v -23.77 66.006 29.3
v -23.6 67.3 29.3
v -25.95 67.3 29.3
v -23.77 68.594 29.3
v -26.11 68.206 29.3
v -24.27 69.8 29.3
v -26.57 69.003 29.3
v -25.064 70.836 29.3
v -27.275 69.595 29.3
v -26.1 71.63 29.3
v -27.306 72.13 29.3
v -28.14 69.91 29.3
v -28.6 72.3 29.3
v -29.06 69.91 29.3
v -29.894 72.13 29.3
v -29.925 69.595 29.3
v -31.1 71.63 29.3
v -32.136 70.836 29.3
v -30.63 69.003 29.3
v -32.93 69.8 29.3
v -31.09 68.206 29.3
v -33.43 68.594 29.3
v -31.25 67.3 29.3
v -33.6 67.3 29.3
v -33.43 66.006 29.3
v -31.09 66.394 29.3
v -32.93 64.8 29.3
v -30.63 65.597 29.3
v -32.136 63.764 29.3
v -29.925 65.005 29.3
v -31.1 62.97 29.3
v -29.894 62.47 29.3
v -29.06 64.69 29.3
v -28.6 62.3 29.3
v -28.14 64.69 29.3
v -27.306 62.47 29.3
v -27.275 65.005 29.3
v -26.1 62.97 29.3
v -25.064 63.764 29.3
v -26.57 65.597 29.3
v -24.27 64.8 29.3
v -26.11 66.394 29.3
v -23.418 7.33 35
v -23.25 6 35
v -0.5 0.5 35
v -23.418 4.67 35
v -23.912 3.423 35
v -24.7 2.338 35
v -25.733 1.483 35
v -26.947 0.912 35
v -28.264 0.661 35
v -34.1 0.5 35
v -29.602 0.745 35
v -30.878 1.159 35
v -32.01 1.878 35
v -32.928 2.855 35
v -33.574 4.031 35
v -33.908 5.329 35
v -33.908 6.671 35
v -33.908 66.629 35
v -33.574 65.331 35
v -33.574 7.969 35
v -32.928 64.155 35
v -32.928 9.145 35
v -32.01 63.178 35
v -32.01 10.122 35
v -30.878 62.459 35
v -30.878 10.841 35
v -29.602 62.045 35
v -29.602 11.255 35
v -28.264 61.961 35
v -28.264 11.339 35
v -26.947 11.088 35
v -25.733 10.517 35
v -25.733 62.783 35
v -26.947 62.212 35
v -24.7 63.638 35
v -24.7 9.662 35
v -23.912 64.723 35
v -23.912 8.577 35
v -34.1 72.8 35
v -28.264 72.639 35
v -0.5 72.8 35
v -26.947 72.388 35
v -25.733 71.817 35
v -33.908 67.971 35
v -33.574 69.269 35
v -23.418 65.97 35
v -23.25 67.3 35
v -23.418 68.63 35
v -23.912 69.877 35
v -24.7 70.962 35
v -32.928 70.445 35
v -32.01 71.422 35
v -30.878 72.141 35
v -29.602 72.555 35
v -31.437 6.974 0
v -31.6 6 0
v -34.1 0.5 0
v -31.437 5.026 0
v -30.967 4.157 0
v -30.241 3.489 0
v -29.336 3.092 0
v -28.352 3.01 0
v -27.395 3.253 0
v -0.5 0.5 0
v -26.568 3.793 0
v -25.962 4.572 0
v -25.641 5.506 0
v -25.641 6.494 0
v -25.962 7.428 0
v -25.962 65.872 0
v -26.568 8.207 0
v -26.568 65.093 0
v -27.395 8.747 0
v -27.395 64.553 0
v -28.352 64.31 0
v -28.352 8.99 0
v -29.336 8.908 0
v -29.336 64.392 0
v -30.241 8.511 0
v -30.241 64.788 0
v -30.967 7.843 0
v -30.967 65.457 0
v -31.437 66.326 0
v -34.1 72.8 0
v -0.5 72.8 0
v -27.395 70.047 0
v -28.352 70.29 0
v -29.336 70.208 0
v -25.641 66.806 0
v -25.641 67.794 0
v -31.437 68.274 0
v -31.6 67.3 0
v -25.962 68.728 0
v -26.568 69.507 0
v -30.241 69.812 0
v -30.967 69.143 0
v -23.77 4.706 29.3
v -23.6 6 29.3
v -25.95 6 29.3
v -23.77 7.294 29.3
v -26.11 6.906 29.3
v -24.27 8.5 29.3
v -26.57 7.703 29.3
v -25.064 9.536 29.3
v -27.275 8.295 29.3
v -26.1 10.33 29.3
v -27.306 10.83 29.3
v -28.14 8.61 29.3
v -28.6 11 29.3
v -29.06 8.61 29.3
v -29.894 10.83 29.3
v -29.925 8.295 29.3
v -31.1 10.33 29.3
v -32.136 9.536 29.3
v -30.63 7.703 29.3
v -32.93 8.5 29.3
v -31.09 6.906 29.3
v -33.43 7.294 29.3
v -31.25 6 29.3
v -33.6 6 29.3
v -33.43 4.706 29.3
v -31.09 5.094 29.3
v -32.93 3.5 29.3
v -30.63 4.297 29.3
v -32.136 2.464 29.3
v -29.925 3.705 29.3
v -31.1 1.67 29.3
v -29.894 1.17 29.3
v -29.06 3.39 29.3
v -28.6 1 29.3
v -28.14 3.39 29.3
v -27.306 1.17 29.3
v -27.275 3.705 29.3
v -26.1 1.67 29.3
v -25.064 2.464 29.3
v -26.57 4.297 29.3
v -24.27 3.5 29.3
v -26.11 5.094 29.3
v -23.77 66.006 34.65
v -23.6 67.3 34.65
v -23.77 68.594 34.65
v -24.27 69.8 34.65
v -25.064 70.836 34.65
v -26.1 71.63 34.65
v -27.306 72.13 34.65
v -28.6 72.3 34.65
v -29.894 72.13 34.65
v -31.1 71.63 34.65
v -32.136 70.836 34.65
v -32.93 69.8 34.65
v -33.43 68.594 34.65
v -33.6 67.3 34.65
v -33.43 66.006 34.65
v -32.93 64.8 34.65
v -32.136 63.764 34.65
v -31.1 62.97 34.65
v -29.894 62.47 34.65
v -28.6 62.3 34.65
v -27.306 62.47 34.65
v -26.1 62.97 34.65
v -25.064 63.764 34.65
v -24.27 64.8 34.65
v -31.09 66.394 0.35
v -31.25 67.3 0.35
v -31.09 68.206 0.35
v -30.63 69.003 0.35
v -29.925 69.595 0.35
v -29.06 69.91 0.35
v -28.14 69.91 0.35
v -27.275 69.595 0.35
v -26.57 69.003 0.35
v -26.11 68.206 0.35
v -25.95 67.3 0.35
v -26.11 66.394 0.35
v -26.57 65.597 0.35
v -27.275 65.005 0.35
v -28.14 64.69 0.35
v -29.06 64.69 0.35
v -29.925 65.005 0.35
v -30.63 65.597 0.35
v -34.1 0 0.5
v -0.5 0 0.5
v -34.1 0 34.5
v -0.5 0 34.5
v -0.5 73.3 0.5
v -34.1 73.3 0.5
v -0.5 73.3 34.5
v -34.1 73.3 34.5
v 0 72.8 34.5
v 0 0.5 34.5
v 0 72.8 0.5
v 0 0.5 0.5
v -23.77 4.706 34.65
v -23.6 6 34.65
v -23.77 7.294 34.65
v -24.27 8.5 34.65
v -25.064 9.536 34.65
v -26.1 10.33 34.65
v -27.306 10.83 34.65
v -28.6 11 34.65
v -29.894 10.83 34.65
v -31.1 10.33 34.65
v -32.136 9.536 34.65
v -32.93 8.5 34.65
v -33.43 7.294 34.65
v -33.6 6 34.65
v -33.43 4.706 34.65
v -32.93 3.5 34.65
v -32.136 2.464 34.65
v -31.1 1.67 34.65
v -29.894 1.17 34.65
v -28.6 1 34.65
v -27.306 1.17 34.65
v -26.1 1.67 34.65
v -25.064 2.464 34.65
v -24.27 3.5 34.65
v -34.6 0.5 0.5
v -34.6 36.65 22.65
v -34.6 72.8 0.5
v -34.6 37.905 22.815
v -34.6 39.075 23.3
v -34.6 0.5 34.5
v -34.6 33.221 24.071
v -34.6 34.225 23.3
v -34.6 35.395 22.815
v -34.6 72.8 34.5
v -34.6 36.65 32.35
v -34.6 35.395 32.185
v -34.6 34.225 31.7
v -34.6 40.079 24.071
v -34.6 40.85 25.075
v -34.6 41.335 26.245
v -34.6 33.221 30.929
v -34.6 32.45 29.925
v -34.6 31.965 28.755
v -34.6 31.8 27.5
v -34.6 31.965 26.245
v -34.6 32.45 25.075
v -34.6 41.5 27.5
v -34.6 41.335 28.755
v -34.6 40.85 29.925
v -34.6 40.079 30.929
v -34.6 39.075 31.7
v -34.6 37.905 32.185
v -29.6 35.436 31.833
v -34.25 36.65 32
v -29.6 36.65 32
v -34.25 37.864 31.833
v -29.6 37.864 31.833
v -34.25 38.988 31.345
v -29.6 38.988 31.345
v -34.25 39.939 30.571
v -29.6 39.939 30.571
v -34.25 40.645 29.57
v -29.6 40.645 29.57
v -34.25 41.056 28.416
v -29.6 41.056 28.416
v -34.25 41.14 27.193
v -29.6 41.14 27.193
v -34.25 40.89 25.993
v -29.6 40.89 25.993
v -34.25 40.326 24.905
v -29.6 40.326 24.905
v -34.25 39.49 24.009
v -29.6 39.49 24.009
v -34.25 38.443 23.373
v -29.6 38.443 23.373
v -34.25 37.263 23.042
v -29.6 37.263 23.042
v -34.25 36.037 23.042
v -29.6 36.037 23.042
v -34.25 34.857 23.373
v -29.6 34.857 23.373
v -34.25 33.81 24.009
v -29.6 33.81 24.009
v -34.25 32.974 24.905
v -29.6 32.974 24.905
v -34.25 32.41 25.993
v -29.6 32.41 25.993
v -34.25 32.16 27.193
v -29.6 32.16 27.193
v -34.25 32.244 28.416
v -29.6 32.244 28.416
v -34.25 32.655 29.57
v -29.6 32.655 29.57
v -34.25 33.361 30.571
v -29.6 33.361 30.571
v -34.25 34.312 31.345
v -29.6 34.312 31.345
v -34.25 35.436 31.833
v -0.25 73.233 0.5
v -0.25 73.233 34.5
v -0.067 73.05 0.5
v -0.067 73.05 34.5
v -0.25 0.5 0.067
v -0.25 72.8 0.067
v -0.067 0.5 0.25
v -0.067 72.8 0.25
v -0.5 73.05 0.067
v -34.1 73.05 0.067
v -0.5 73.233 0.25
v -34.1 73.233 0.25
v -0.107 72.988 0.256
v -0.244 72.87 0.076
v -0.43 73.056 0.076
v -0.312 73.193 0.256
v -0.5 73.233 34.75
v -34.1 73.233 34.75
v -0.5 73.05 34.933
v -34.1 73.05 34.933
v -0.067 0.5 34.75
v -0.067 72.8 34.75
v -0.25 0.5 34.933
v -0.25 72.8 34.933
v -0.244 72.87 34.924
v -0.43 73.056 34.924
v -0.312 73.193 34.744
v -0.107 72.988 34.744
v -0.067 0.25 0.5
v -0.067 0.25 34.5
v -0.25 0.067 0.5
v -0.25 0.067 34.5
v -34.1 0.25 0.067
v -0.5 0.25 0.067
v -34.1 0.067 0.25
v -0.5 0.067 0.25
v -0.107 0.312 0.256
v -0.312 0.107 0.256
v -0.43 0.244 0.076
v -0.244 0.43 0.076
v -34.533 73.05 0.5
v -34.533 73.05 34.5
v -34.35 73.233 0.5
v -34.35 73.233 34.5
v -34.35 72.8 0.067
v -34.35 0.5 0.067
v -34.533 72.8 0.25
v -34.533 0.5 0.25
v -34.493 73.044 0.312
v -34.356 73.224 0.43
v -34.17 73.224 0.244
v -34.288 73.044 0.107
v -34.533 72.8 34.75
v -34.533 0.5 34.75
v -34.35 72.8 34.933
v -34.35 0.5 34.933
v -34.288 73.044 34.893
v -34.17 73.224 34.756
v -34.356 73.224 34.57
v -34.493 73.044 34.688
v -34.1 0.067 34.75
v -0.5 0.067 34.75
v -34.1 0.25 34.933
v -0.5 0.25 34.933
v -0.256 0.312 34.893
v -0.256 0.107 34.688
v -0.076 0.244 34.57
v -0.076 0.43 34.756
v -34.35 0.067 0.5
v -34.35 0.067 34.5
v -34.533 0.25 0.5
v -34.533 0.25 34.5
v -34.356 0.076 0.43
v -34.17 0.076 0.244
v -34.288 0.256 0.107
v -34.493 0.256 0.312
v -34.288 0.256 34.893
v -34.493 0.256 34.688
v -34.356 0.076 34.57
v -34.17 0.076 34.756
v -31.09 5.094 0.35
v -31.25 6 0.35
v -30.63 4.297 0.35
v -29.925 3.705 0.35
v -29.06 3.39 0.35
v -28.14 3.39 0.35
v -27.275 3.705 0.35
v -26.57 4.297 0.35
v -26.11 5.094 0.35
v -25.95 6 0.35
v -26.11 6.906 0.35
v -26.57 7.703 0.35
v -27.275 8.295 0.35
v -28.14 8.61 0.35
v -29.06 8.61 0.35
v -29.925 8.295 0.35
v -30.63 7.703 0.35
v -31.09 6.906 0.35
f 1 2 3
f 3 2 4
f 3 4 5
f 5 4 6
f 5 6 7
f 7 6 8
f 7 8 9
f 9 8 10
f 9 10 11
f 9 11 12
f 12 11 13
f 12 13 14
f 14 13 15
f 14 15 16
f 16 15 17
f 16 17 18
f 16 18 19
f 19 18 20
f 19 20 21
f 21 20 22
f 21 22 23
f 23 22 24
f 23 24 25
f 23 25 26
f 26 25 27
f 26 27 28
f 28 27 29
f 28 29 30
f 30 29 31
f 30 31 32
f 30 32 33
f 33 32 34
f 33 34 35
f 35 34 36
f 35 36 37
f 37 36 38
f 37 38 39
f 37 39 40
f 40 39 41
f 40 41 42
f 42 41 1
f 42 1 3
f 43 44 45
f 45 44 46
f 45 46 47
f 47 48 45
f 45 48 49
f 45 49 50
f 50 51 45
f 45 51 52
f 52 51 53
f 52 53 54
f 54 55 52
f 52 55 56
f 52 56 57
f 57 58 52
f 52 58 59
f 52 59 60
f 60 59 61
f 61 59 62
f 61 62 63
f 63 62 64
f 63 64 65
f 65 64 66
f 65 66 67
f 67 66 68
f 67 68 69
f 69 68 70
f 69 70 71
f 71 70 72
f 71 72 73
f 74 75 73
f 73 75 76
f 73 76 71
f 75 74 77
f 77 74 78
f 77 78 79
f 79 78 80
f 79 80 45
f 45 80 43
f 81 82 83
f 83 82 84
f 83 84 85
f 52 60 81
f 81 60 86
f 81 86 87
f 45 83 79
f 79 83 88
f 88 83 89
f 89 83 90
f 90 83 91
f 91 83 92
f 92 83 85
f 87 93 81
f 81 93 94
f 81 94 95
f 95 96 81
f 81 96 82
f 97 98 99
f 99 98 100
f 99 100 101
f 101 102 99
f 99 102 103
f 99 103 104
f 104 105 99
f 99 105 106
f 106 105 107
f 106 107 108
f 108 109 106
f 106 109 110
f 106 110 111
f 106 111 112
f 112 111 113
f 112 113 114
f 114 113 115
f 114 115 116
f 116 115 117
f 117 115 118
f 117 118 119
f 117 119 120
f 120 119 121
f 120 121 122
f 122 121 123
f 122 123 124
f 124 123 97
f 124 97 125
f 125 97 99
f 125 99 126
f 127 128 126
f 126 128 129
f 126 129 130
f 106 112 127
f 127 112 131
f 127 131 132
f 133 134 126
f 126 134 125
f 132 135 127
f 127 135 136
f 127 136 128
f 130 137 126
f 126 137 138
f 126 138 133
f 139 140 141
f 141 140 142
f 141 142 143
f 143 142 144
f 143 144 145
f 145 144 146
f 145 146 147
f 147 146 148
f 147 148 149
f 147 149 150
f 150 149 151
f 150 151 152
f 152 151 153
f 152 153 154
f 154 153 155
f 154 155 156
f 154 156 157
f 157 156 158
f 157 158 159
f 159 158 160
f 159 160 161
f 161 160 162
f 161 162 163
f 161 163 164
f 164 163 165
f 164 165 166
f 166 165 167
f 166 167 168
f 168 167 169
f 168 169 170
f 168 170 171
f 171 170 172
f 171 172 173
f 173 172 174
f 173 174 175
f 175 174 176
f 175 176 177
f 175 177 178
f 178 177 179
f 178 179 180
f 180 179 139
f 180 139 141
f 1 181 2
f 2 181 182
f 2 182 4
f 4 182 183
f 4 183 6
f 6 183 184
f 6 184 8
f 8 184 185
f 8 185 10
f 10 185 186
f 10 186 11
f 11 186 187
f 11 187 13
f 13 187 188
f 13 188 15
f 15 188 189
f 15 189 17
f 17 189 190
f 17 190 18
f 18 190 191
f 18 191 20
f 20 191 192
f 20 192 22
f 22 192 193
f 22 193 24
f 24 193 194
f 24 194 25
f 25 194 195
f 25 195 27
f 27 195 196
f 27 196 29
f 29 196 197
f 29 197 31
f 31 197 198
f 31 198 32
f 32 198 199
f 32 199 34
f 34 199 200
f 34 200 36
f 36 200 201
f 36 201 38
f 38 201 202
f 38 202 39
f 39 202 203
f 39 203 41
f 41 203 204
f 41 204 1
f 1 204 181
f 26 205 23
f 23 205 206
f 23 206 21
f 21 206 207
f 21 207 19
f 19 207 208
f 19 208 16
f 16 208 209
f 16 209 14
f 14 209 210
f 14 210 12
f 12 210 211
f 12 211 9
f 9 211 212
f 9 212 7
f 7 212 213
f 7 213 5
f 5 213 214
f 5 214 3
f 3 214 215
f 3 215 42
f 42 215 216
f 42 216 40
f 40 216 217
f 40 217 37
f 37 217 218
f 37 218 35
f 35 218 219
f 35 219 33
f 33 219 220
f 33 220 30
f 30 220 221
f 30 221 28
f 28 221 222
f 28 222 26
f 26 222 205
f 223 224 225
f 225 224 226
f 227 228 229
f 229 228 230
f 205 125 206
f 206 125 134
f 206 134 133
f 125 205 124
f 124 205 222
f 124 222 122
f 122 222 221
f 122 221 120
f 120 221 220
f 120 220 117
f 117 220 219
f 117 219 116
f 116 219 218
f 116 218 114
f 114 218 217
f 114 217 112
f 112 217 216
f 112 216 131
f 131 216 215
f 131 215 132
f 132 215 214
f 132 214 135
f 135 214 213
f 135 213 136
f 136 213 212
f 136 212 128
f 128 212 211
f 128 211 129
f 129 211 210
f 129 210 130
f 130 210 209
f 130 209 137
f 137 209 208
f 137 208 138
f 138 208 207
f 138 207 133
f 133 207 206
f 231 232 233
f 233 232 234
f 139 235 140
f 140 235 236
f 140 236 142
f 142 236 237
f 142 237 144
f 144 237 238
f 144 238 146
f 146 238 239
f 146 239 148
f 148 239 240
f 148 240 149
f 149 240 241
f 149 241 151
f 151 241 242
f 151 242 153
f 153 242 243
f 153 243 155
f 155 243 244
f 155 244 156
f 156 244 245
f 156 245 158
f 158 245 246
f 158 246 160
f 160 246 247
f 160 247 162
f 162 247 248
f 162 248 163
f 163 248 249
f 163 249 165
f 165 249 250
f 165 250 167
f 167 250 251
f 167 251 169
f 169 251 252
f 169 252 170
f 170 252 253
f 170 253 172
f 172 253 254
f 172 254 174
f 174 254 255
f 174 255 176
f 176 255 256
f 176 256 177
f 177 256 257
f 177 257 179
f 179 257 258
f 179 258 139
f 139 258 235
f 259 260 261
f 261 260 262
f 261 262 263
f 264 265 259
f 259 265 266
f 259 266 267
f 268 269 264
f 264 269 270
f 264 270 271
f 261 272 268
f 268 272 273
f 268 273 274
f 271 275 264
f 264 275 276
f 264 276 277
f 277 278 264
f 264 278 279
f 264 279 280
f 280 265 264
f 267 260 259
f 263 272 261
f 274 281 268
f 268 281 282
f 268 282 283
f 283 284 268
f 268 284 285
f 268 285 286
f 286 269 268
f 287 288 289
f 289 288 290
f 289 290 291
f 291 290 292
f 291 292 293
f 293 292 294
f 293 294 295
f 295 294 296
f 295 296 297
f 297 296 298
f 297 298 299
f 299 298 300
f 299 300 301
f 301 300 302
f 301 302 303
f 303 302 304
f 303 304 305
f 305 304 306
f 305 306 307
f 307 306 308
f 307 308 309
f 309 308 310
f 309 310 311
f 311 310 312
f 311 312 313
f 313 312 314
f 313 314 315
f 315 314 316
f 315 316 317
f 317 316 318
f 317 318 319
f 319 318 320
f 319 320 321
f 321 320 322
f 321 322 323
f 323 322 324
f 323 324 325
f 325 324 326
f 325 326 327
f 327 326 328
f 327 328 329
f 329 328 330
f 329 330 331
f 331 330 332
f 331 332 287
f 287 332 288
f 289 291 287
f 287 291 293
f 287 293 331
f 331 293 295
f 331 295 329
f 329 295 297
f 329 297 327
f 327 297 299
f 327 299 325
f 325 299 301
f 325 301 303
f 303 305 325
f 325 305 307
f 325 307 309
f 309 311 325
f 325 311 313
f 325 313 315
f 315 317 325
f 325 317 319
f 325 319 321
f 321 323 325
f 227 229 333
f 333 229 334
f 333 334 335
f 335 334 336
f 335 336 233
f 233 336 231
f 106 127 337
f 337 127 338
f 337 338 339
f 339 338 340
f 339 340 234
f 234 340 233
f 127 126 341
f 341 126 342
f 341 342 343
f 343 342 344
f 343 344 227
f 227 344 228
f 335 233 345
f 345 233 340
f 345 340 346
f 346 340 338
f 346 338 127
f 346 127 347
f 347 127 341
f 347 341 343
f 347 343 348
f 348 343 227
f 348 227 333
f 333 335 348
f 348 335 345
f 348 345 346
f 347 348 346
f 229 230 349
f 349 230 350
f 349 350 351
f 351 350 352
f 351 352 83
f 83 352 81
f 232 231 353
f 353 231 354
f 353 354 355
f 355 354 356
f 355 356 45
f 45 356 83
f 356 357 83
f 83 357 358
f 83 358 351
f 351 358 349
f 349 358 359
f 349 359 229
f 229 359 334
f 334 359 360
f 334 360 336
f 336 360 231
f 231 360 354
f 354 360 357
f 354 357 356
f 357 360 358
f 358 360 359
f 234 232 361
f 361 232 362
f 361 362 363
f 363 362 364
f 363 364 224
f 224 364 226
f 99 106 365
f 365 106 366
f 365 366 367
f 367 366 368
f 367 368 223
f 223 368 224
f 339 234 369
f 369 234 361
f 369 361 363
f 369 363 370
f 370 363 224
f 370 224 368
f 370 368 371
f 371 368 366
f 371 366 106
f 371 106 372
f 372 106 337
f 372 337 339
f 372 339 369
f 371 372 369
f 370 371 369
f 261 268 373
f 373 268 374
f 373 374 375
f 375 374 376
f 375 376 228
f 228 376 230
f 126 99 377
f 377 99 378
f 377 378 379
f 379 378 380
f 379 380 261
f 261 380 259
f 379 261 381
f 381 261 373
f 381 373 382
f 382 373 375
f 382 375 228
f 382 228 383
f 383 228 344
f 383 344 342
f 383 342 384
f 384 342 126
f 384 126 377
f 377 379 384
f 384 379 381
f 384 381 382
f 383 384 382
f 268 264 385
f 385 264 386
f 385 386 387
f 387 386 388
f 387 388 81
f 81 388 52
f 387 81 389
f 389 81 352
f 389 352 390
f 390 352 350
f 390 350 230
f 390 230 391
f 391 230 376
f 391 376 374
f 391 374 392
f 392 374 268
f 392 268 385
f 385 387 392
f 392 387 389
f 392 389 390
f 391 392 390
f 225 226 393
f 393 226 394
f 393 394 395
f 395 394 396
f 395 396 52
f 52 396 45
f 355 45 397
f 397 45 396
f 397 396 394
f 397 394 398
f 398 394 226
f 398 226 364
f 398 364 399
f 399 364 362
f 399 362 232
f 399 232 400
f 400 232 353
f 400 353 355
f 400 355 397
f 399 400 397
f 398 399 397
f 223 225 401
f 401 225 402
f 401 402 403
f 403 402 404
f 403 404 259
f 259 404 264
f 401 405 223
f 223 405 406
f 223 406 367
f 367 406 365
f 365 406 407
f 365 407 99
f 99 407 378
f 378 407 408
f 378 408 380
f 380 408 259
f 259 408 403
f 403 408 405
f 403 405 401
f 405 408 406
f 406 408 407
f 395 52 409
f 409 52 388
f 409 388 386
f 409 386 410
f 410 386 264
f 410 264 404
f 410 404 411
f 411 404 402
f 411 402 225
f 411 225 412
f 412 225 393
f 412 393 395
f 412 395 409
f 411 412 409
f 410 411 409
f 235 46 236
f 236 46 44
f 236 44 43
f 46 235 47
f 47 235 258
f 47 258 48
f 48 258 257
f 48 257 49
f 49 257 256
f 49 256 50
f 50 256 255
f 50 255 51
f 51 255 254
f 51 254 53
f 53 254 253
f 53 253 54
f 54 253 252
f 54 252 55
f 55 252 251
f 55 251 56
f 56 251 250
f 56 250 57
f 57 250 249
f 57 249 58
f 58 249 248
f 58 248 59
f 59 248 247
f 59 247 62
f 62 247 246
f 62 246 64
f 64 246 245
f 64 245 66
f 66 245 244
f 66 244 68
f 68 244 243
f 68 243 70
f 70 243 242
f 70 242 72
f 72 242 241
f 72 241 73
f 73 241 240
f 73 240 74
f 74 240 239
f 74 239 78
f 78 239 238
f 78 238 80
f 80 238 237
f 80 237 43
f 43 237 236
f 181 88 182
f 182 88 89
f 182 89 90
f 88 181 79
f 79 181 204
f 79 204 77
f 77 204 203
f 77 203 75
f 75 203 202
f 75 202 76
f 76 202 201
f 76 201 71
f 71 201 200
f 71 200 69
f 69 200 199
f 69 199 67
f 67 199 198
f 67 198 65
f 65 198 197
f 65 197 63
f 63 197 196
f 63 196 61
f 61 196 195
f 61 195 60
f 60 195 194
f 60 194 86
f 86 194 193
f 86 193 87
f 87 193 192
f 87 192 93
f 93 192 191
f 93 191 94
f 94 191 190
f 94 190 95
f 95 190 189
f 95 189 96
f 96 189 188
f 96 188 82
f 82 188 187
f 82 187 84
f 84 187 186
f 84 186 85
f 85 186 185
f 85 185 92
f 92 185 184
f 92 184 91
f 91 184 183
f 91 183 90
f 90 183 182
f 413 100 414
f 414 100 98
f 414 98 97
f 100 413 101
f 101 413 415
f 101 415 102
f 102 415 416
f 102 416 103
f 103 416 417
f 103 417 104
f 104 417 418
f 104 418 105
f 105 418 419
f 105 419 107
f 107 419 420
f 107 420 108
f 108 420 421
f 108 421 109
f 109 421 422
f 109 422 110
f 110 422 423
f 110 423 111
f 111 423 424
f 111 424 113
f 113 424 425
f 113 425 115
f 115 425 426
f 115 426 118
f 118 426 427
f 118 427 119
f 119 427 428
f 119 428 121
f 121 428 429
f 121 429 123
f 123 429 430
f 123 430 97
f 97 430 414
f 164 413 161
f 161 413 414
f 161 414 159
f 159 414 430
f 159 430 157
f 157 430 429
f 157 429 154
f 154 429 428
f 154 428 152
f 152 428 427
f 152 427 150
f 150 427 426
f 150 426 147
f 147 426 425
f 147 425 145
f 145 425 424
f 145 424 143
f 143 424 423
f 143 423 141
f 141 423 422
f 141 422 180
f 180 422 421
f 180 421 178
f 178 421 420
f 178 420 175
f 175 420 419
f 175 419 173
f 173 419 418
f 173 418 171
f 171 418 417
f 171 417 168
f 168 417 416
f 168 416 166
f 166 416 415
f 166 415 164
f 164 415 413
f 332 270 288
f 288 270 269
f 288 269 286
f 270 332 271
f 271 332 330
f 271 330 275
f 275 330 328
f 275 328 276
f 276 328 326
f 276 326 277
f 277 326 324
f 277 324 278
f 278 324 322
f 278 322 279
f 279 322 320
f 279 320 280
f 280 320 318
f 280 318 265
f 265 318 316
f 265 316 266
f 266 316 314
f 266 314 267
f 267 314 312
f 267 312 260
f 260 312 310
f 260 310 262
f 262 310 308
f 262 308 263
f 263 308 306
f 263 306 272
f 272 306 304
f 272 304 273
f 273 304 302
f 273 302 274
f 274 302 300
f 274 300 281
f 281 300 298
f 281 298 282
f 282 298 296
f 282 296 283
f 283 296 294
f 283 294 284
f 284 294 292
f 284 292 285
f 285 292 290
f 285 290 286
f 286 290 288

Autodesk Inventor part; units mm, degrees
ref_plane "YZ Plane" through (0, 0, 0) normal (1, 0, 0) x (0, 1, 0)
ref_plane "XZ Plane" through (0, 0, 0) normal (0, 1, 0) x (-1, 0, 0)
ref_plane "XY Plane" through (0, 0, 0) normal (0, 0, 1) x (1, 0, 0)
sketch "Sketch5" plane through (0, 0, 0) normal (0, 0, 1) x (1, 0, 0)
  line L0 (0, 0) -> (-34.6, 0)
  line L1 (-34.6, 0) -> (-34.6, 73.3)
  line L2 (-34.6, 73.3) -> (0, 73.3)
  line L3 (0, 73.3) -> (0, 0)
  dimension "d7" = 34.6
  dimension "d8" = 73.3
sketch "Sketch6" plane through (0, 0, 0) normal (0, 0, 1) x (1, 0, 0)
  point P0 (0, 0)
extrude "Extrusion3" add sketch "Sketch5" along normal blind 35
sketch "Sketch7" plane through (0, 0, 35) normal (0, 0, 1) x (1, 0, 0)
  line L0 (-34.6, 0) -> (0, 0) projected
  line L1 (-34.6, 0) -> (-34.6, 6)
  line L2 (-34.6, 73.3) -> (-34.6, 0) projected
  line L3 (-34.6, 6) -> (-28.6, 6)
  dimension "d11" = 6
  dimension "d12" = 6
hole "Hole1" at (-28.6, 6, 35) direction (0, 0, -1) diameter 5.3 end through all counterbore diameter 10 counterbore depth 5.7 clearance for "Socket Head Cap Screw ISO 4762" size "M5" standard "ISO"
ref_plane "Work Plane1" through (-34.6, 36.65, 0) normal (0, 1, 0) x (1, 0, 0)
mirror "Mirror1" about plane through (-34.6, 36.65, 0) normal (0, 1, 0) of "Hole1"
sketch "Sketch8" plane through (-34.6, 0, 0) normal (-1, 0, 0) x (0, 0, 1)
  point P0 (0, 0)
sketch "Sketch9" plane through (-34.6, 0, 0) normal (-1, 0, 0) x (0, 0, 1)
  line L0 (0, 0) -> (35, 0) projected
  line L1 (0, 0) -> (0, 36.65)
  line L2 (0, 73.3) -> (0, 0) projected
  line L3 (0, 36.65) -> (27.5, 36.65)
  circle A0 centre (27.5, 36.65) radius 4.5
  dimension "d20" = 36.65
  dimension "d21" = 27.5
  dimension "d22" = 9
extrude "Extrusion4" cut sketch "Sketch9" against normal blind 5
fillet "Fillet1" radius 0.5 12 edges at (0, 73.3, 17.5) (-34.6, 73.3, 17.5) (0, 0, 17.5) (-34.6, 0, 17.5) (-17.3, 0, 35) (-17.3, 0, 0) (0, 36.65, 0) (-34.6, 36.65, 0) (-17.3, 73.3, 0) (-17.3, 73.3, 35) (0, 36.65, 35) (-34.6, 36.65, 35)
chamfer "Chamfer1" distance 0.35 angle 45 1 edges at (-28.6, 11, 35)
chamfer "Chamfer2" distance 0.35 angle 45 1 edges at (-28.6, 62.3, 35)
chamfer "Chamfer3" distance 0.35 angle 45 2 edges at (-28.6, 8.65, 0) (-28.6, 64.65, 0)
chamfer "Chamfer4" distance 0.35 angle 45 1 edges at (-34.6, 36.65, 23)
properties part number "springHolder"
